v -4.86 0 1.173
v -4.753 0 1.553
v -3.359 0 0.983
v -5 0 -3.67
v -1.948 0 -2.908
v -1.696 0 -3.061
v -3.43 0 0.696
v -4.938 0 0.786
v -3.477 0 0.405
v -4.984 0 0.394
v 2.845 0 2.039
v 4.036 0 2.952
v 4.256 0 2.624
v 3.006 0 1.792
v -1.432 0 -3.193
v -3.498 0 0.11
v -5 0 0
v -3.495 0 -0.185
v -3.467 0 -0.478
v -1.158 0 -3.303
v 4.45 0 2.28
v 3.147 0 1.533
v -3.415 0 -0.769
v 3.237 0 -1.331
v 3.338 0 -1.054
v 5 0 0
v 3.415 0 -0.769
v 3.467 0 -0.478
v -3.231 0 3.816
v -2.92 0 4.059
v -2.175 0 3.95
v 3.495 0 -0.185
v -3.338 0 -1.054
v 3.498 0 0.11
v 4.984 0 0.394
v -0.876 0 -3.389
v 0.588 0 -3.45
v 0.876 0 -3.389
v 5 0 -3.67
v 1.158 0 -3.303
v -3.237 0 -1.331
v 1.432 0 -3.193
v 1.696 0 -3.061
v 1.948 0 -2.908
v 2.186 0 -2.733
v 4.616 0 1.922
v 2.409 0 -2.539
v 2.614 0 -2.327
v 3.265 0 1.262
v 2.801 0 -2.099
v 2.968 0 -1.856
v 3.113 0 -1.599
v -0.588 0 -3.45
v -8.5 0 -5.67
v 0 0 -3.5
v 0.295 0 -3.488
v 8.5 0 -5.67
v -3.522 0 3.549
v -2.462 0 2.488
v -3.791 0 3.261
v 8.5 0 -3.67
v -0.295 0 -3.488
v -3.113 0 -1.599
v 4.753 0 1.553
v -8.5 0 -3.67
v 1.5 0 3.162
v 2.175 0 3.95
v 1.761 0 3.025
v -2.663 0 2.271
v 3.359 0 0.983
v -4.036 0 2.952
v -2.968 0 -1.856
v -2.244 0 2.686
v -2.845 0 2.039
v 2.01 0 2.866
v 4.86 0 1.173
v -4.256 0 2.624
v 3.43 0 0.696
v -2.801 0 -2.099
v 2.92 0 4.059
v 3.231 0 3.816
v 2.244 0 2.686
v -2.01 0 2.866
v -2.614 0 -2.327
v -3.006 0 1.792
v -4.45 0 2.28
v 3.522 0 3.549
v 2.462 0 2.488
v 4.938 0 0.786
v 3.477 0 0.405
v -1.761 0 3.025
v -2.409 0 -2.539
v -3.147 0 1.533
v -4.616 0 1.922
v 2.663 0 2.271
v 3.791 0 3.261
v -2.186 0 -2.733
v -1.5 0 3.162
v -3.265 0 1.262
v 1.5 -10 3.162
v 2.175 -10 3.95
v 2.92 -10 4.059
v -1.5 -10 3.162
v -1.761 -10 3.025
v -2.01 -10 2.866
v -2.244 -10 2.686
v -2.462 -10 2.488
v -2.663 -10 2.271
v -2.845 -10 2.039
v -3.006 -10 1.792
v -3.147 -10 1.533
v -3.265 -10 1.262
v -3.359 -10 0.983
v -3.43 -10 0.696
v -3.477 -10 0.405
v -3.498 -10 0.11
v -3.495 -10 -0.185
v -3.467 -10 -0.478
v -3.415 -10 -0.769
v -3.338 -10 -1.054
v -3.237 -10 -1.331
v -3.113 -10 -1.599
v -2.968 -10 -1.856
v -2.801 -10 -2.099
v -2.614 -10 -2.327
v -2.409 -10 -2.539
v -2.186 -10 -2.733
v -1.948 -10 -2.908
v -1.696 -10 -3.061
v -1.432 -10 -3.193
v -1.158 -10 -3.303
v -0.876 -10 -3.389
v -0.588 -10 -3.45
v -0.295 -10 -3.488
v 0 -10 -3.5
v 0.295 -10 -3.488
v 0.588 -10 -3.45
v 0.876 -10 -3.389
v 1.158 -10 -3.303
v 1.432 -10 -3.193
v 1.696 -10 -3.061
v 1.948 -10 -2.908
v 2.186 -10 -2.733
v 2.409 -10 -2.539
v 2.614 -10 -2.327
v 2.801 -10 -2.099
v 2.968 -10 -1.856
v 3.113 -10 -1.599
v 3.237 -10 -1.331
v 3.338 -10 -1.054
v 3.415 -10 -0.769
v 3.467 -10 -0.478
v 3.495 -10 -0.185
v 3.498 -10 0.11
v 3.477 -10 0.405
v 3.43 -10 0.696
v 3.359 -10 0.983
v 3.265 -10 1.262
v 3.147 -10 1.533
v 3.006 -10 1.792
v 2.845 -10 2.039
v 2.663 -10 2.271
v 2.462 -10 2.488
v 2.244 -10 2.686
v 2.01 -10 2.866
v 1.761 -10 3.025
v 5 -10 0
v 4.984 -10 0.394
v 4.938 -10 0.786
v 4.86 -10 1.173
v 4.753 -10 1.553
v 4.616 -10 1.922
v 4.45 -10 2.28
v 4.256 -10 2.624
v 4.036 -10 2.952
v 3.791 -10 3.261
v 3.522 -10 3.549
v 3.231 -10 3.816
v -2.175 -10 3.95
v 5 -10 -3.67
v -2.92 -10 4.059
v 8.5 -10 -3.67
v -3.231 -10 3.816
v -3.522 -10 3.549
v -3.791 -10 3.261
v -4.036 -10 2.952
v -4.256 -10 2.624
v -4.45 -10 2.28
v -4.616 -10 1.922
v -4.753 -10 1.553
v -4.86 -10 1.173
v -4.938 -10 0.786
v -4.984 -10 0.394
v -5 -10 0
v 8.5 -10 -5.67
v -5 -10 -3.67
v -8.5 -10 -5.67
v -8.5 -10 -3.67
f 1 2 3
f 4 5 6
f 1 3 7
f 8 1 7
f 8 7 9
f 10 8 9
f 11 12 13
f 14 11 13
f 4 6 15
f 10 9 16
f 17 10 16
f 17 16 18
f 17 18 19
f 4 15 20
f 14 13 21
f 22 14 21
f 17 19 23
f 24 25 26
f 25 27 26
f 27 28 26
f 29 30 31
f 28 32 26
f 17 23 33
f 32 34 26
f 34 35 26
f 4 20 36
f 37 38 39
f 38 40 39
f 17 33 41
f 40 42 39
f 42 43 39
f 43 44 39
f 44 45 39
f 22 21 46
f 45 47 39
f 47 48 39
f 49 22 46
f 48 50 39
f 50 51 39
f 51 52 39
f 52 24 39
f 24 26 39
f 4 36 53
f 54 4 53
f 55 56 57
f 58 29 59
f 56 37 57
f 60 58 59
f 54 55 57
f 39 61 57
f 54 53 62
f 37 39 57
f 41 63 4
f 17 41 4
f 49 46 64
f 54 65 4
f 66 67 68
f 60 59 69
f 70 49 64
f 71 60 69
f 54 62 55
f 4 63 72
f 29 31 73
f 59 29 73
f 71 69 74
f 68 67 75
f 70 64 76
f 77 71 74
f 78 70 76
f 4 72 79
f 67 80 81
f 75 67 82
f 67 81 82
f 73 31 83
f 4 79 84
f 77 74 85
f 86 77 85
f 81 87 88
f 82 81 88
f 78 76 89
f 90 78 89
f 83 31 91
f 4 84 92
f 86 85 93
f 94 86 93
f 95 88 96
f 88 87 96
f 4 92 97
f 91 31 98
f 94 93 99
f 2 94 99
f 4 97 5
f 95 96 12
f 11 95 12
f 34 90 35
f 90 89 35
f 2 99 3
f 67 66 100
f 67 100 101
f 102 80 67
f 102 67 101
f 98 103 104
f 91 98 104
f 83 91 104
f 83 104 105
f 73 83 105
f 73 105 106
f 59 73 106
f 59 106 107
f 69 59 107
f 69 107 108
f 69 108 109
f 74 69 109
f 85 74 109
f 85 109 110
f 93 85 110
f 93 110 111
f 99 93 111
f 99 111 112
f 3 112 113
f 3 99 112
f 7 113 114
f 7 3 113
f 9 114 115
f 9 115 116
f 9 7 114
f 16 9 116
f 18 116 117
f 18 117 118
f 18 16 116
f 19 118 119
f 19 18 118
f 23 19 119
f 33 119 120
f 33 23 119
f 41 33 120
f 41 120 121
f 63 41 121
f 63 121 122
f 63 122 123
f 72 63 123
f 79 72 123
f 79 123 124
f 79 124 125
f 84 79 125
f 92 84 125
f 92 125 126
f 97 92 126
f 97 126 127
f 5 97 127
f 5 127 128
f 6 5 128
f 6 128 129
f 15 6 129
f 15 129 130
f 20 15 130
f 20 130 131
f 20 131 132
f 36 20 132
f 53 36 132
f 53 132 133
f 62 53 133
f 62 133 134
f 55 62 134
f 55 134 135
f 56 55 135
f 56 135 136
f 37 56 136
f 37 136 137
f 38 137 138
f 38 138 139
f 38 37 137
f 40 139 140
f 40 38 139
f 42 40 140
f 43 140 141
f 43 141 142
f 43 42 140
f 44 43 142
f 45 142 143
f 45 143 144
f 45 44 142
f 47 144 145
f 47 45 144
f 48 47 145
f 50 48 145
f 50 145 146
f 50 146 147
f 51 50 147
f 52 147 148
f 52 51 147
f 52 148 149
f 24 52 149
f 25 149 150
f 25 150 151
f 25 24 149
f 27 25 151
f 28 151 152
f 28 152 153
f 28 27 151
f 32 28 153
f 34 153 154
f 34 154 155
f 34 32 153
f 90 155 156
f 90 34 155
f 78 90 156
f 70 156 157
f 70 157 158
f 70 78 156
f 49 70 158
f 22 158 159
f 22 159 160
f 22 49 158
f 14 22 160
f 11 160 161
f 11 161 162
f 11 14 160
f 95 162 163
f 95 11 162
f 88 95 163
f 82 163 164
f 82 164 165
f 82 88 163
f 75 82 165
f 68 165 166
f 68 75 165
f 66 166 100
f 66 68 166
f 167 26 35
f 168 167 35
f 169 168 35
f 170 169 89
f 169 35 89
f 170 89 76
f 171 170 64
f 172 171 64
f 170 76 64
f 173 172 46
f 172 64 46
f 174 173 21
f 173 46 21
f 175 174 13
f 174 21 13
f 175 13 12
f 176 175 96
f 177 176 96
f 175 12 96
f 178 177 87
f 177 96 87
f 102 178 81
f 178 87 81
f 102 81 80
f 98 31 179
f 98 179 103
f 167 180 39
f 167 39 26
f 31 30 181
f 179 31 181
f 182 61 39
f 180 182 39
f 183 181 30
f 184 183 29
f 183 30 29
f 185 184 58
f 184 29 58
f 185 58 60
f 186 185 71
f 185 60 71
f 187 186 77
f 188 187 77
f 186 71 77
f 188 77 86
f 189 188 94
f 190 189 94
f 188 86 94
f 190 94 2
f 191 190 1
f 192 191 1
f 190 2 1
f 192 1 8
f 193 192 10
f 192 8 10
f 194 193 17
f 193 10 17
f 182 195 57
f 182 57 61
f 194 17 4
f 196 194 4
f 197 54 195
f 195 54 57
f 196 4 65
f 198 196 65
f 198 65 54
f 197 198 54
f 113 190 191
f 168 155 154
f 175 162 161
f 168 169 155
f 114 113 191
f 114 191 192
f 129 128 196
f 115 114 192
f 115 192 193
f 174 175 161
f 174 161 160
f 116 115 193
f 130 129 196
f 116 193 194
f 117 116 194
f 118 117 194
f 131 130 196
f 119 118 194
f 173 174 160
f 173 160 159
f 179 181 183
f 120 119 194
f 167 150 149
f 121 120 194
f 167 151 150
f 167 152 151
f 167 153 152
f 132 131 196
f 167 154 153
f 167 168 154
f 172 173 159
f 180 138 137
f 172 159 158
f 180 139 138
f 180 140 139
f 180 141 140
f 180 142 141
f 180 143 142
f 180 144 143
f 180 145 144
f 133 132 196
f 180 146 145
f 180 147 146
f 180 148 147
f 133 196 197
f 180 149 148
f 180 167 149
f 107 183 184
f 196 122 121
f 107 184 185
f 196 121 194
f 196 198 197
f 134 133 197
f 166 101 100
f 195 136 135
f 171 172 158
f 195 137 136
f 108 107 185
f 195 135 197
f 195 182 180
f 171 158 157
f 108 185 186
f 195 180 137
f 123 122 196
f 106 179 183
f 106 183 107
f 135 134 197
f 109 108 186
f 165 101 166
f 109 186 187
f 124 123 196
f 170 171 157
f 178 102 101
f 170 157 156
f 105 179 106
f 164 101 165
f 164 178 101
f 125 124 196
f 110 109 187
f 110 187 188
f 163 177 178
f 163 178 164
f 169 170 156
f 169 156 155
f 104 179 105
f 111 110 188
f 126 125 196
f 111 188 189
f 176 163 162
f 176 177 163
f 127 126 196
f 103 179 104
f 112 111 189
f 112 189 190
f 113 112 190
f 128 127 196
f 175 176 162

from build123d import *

# Parameters (mm, degrees)
PAD_DEPTH       = 10
CHAMFER_SIZE    = 0.5
CHAMFER001_SIZE = 0.5


with BuildPart() as part:
    # Sketch → Pad (new body)
    with BuildSketch(Plane.XZ):
        with BuildLine():
            ThreePointArc((-1.5, 3.162278), (0, -3.5), (1.5, 3.162278))
            Line((1.5, 3.162278), (2.5, 4.330127))
            ThreePointArc((5, 2.7e-05), (4.33012, 2.500012), (2.5, 4.330127))
            Line((5, -3.669873), (5, 2.7e-05))
            Line((8.5, -3.669873), (5, -3.669873))
            Line((8.5, -5.669873), (8.5, -3.669873))
            Line((-8.5, -5.669873), (8.5, -5.669873))
            Line((-8.5, -3.669873), (-8.5, -5.669873))
            Line((-5, -3.669873), (-8.5, -3.669873))
            Line((-5, 2.7e-05), (-5, -3.669873))
            ThreePointArc((-2.5, 4.330127), (-4.33012, 2.500012), (-5, 2.7e-05))
            Line((-2.5, 4.330127), (-1.5, 3.162278))
        make_face()
    extrude(amount=PAD_DEPTH)

    # Chamfer
    chamfer_edges = [part.edges().sort_by_distance(p)[0] for p in [
        (-2.5, -5, 4.330127),
    ]]
    chamfer(chamfer_edges, length=CHAMFER_SIZE)

    # Chamfer001
    chamfer001_edges = [part.edges().sort_by_distance(p)[0] for p in [
        (2.5, -5, 4.330127),
    ]]
    chamfer(chamfer001_edges, length=CHAMFER001_SIZE)


solid = part.part
